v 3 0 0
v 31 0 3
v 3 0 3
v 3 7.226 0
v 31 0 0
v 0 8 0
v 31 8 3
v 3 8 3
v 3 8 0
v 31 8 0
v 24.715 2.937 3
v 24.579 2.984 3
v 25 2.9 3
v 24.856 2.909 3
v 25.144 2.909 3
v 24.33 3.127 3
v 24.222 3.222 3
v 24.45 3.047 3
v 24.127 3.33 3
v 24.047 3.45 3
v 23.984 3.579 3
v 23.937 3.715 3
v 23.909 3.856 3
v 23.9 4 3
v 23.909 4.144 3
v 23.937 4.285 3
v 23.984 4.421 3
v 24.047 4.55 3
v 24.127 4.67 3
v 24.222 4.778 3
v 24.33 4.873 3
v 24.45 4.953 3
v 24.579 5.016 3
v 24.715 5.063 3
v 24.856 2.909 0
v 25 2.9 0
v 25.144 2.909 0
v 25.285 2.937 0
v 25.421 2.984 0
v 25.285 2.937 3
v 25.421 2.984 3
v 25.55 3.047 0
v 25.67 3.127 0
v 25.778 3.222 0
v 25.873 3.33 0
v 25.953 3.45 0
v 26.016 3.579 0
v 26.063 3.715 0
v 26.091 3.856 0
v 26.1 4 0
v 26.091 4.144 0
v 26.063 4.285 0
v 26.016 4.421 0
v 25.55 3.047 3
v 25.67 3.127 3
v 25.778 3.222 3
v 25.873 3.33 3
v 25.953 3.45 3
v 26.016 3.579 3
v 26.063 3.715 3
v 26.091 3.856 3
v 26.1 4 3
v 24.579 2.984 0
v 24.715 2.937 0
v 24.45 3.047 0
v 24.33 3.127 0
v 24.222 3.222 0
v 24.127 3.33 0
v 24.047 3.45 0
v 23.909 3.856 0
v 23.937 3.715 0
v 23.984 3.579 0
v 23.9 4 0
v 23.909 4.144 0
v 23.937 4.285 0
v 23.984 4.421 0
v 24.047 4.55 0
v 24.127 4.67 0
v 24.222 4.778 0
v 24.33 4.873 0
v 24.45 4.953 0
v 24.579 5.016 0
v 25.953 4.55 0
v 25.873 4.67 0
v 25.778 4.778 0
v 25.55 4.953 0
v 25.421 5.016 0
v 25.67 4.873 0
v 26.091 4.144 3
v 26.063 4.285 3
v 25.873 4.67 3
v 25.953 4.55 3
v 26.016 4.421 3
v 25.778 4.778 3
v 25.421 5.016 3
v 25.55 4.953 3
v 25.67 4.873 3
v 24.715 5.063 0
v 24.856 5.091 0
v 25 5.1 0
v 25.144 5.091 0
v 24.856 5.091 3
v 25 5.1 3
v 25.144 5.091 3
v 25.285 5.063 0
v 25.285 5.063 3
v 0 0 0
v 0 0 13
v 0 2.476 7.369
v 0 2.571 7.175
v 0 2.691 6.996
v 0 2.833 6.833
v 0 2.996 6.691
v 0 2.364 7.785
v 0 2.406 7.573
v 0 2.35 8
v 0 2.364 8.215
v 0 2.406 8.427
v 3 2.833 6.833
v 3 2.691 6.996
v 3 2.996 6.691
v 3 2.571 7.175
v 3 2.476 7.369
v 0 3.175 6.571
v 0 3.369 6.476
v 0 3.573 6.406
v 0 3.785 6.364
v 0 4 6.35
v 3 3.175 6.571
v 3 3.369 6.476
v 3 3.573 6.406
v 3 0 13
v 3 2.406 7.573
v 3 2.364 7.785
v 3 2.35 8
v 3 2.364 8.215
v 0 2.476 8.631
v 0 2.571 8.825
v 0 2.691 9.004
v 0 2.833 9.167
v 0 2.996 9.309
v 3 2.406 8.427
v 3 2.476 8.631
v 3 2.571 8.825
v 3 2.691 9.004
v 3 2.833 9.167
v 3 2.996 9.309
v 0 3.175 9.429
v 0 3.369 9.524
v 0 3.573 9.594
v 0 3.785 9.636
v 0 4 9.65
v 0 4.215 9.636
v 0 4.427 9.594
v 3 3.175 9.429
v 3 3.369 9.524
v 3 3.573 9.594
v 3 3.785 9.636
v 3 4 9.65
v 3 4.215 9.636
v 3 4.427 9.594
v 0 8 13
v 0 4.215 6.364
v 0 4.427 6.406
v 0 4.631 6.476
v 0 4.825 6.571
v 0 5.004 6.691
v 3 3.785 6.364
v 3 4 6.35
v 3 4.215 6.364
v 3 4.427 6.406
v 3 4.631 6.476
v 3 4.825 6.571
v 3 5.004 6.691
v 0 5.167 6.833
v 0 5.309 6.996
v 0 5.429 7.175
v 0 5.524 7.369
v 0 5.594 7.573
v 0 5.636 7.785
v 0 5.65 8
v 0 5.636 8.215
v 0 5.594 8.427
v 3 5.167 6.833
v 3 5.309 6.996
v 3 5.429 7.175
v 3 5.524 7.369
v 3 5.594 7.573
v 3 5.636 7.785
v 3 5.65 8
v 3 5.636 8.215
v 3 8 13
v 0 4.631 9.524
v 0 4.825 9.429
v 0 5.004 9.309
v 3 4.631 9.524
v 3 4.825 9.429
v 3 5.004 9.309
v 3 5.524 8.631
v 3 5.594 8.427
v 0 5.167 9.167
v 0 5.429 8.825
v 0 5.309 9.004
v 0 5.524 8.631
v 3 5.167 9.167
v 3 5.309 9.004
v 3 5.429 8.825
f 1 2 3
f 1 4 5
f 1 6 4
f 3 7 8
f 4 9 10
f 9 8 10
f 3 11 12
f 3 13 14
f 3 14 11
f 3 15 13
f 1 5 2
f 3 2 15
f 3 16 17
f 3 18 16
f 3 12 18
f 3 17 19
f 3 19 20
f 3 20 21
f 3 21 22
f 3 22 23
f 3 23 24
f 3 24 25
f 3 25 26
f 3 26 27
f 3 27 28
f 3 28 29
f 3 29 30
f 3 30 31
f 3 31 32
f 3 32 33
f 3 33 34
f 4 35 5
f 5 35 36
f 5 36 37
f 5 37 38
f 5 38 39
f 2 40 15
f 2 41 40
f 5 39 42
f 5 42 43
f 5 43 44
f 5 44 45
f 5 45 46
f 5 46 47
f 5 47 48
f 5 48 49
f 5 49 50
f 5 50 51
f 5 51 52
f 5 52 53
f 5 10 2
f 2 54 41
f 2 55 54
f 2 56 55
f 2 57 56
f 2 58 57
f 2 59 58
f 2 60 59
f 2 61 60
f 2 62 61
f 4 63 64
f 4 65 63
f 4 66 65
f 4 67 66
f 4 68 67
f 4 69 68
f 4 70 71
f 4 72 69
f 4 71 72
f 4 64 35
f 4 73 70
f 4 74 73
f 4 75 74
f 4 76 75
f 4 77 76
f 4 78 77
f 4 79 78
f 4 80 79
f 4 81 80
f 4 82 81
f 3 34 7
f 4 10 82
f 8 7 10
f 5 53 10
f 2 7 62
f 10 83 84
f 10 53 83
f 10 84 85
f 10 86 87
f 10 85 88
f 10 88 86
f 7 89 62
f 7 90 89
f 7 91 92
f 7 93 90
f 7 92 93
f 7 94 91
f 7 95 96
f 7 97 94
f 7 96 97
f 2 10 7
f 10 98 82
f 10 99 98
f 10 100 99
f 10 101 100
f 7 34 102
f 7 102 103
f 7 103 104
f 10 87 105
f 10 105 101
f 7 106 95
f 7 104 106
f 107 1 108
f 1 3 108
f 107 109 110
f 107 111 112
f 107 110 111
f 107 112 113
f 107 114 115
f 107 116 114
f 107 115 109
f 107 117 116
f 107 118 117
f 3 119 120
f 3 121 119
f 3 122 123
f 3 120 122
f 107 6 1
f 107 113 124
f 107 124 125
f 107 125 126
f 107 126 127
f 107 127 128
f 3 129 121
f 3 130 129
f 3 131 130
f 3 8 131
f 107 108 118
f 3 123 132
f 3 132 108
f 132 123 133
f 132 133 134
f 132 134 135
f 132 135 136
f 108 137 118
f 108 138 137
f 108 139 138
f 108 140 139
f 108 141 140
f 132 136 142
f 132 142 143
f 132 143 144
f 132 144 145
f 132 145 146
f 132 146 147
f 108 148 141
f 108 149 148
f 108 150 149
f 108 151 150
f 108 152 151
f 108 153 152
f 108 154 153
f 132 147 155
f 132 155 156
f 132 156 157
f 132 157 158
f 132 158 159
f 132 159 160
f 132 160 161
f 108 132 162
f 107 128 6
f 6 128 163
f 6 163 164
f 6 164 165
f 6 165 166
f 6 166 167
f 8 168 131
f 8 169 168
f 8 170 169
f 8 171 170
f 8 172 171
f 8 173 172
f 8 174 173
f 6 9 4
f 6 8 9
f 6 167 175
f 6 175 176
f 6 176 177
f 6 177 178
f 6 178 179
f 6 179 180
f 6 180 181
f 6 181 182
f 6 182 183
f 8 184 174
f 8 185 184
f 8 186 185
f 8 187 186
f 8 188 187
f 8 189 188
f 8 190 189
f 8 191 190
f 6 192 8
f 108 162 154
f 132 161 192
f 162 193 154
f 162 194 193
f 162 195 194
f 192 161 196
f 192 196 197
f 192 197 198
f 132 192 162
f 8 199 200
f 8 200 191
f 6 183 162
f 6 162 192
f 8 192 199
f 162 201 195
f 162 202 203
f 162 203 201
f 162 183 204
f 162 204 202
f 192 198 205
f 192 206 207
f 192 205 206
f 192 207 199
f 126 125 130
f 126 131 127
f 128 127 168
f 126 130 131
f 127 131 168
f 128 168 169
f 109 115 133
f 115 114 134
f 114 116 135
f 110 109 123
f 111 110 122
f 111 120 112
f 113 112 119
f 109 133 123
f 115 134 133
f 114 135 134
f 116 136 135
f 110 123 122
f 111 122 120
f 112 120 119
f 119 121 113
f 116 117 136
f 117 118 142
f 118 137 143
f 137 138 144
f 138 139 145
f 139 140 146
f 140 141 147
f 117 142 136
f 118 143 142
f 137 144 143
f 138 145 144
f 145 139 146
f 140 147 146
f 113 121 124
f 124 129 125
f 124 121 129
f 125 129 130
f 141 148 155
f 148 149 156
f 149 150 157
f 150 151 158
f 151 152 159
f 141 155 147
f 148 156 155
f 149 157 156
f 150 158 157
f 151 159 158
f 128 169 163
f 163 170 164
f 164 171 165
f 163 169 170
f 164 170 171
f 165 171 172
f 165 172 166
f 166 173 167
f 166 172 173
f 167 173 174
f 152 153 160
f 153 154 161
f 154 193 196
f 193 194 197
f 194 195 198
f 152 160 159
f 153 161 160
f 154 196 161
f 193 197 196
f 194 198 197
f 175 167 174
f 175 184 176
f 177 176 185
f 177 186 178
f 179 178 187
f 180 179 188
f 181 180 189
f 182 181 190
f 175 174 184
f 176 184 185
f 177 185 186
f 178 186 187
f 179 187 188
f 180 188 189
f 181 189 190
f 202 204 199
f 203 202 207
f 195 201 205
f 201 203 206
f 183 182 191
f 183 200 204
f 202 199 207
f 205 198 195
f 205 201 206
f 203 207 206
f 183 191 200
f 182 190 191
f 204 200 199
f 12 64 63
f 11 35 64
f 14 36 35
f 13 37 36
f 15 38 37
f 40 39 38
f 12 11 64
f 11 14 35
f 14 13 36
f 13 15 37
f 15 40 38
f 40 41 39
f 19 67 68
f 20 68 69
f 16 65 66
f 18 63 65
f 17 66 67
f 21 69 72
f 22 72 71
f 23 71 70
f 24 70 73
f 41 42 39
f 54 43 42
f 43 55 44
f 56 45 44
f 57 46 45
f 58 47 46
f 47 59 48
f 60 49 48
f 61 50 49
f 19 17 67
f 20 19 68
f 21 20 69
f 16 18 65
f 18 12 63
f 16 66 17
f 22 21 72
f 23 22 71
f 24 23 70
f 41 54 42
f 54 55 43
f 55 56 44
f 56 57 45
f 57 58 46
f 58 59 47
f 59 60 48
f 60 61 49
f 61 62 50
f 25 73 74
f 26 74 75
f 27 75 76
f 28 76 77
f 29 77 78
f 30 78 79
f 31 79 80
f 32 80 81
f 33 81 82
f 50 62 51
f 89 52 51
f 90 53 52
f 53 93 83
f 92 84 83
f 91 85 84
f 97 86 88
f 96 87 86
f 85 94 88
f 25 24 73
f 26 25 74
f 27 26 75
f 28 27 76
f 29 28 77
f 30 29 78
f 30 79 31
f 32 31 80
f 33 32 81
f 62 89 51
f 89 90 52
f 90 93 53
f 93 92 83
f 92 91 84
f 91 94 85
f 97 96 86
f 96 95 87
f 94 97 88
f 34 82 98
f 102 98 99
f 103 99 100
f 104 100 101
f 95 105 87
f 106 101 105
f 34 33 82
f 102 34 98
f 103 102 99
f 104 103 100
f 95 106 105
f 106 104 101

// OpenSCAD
// Generated FH1 print part; mm. See parameters.json and physical-fit limits.
difference() {
union() {
cube([31,8,3]);
cube([3,8,13]);
}
translate([-0.1, 4, 8]) { rotate([0, 90, 0]) { cylinder(d=3.3,h=3.2,$fn=48); } }
translate([25, 4, -0.1]) { cylinder(d=2.2,h=3.2,$fn=48); }
}
